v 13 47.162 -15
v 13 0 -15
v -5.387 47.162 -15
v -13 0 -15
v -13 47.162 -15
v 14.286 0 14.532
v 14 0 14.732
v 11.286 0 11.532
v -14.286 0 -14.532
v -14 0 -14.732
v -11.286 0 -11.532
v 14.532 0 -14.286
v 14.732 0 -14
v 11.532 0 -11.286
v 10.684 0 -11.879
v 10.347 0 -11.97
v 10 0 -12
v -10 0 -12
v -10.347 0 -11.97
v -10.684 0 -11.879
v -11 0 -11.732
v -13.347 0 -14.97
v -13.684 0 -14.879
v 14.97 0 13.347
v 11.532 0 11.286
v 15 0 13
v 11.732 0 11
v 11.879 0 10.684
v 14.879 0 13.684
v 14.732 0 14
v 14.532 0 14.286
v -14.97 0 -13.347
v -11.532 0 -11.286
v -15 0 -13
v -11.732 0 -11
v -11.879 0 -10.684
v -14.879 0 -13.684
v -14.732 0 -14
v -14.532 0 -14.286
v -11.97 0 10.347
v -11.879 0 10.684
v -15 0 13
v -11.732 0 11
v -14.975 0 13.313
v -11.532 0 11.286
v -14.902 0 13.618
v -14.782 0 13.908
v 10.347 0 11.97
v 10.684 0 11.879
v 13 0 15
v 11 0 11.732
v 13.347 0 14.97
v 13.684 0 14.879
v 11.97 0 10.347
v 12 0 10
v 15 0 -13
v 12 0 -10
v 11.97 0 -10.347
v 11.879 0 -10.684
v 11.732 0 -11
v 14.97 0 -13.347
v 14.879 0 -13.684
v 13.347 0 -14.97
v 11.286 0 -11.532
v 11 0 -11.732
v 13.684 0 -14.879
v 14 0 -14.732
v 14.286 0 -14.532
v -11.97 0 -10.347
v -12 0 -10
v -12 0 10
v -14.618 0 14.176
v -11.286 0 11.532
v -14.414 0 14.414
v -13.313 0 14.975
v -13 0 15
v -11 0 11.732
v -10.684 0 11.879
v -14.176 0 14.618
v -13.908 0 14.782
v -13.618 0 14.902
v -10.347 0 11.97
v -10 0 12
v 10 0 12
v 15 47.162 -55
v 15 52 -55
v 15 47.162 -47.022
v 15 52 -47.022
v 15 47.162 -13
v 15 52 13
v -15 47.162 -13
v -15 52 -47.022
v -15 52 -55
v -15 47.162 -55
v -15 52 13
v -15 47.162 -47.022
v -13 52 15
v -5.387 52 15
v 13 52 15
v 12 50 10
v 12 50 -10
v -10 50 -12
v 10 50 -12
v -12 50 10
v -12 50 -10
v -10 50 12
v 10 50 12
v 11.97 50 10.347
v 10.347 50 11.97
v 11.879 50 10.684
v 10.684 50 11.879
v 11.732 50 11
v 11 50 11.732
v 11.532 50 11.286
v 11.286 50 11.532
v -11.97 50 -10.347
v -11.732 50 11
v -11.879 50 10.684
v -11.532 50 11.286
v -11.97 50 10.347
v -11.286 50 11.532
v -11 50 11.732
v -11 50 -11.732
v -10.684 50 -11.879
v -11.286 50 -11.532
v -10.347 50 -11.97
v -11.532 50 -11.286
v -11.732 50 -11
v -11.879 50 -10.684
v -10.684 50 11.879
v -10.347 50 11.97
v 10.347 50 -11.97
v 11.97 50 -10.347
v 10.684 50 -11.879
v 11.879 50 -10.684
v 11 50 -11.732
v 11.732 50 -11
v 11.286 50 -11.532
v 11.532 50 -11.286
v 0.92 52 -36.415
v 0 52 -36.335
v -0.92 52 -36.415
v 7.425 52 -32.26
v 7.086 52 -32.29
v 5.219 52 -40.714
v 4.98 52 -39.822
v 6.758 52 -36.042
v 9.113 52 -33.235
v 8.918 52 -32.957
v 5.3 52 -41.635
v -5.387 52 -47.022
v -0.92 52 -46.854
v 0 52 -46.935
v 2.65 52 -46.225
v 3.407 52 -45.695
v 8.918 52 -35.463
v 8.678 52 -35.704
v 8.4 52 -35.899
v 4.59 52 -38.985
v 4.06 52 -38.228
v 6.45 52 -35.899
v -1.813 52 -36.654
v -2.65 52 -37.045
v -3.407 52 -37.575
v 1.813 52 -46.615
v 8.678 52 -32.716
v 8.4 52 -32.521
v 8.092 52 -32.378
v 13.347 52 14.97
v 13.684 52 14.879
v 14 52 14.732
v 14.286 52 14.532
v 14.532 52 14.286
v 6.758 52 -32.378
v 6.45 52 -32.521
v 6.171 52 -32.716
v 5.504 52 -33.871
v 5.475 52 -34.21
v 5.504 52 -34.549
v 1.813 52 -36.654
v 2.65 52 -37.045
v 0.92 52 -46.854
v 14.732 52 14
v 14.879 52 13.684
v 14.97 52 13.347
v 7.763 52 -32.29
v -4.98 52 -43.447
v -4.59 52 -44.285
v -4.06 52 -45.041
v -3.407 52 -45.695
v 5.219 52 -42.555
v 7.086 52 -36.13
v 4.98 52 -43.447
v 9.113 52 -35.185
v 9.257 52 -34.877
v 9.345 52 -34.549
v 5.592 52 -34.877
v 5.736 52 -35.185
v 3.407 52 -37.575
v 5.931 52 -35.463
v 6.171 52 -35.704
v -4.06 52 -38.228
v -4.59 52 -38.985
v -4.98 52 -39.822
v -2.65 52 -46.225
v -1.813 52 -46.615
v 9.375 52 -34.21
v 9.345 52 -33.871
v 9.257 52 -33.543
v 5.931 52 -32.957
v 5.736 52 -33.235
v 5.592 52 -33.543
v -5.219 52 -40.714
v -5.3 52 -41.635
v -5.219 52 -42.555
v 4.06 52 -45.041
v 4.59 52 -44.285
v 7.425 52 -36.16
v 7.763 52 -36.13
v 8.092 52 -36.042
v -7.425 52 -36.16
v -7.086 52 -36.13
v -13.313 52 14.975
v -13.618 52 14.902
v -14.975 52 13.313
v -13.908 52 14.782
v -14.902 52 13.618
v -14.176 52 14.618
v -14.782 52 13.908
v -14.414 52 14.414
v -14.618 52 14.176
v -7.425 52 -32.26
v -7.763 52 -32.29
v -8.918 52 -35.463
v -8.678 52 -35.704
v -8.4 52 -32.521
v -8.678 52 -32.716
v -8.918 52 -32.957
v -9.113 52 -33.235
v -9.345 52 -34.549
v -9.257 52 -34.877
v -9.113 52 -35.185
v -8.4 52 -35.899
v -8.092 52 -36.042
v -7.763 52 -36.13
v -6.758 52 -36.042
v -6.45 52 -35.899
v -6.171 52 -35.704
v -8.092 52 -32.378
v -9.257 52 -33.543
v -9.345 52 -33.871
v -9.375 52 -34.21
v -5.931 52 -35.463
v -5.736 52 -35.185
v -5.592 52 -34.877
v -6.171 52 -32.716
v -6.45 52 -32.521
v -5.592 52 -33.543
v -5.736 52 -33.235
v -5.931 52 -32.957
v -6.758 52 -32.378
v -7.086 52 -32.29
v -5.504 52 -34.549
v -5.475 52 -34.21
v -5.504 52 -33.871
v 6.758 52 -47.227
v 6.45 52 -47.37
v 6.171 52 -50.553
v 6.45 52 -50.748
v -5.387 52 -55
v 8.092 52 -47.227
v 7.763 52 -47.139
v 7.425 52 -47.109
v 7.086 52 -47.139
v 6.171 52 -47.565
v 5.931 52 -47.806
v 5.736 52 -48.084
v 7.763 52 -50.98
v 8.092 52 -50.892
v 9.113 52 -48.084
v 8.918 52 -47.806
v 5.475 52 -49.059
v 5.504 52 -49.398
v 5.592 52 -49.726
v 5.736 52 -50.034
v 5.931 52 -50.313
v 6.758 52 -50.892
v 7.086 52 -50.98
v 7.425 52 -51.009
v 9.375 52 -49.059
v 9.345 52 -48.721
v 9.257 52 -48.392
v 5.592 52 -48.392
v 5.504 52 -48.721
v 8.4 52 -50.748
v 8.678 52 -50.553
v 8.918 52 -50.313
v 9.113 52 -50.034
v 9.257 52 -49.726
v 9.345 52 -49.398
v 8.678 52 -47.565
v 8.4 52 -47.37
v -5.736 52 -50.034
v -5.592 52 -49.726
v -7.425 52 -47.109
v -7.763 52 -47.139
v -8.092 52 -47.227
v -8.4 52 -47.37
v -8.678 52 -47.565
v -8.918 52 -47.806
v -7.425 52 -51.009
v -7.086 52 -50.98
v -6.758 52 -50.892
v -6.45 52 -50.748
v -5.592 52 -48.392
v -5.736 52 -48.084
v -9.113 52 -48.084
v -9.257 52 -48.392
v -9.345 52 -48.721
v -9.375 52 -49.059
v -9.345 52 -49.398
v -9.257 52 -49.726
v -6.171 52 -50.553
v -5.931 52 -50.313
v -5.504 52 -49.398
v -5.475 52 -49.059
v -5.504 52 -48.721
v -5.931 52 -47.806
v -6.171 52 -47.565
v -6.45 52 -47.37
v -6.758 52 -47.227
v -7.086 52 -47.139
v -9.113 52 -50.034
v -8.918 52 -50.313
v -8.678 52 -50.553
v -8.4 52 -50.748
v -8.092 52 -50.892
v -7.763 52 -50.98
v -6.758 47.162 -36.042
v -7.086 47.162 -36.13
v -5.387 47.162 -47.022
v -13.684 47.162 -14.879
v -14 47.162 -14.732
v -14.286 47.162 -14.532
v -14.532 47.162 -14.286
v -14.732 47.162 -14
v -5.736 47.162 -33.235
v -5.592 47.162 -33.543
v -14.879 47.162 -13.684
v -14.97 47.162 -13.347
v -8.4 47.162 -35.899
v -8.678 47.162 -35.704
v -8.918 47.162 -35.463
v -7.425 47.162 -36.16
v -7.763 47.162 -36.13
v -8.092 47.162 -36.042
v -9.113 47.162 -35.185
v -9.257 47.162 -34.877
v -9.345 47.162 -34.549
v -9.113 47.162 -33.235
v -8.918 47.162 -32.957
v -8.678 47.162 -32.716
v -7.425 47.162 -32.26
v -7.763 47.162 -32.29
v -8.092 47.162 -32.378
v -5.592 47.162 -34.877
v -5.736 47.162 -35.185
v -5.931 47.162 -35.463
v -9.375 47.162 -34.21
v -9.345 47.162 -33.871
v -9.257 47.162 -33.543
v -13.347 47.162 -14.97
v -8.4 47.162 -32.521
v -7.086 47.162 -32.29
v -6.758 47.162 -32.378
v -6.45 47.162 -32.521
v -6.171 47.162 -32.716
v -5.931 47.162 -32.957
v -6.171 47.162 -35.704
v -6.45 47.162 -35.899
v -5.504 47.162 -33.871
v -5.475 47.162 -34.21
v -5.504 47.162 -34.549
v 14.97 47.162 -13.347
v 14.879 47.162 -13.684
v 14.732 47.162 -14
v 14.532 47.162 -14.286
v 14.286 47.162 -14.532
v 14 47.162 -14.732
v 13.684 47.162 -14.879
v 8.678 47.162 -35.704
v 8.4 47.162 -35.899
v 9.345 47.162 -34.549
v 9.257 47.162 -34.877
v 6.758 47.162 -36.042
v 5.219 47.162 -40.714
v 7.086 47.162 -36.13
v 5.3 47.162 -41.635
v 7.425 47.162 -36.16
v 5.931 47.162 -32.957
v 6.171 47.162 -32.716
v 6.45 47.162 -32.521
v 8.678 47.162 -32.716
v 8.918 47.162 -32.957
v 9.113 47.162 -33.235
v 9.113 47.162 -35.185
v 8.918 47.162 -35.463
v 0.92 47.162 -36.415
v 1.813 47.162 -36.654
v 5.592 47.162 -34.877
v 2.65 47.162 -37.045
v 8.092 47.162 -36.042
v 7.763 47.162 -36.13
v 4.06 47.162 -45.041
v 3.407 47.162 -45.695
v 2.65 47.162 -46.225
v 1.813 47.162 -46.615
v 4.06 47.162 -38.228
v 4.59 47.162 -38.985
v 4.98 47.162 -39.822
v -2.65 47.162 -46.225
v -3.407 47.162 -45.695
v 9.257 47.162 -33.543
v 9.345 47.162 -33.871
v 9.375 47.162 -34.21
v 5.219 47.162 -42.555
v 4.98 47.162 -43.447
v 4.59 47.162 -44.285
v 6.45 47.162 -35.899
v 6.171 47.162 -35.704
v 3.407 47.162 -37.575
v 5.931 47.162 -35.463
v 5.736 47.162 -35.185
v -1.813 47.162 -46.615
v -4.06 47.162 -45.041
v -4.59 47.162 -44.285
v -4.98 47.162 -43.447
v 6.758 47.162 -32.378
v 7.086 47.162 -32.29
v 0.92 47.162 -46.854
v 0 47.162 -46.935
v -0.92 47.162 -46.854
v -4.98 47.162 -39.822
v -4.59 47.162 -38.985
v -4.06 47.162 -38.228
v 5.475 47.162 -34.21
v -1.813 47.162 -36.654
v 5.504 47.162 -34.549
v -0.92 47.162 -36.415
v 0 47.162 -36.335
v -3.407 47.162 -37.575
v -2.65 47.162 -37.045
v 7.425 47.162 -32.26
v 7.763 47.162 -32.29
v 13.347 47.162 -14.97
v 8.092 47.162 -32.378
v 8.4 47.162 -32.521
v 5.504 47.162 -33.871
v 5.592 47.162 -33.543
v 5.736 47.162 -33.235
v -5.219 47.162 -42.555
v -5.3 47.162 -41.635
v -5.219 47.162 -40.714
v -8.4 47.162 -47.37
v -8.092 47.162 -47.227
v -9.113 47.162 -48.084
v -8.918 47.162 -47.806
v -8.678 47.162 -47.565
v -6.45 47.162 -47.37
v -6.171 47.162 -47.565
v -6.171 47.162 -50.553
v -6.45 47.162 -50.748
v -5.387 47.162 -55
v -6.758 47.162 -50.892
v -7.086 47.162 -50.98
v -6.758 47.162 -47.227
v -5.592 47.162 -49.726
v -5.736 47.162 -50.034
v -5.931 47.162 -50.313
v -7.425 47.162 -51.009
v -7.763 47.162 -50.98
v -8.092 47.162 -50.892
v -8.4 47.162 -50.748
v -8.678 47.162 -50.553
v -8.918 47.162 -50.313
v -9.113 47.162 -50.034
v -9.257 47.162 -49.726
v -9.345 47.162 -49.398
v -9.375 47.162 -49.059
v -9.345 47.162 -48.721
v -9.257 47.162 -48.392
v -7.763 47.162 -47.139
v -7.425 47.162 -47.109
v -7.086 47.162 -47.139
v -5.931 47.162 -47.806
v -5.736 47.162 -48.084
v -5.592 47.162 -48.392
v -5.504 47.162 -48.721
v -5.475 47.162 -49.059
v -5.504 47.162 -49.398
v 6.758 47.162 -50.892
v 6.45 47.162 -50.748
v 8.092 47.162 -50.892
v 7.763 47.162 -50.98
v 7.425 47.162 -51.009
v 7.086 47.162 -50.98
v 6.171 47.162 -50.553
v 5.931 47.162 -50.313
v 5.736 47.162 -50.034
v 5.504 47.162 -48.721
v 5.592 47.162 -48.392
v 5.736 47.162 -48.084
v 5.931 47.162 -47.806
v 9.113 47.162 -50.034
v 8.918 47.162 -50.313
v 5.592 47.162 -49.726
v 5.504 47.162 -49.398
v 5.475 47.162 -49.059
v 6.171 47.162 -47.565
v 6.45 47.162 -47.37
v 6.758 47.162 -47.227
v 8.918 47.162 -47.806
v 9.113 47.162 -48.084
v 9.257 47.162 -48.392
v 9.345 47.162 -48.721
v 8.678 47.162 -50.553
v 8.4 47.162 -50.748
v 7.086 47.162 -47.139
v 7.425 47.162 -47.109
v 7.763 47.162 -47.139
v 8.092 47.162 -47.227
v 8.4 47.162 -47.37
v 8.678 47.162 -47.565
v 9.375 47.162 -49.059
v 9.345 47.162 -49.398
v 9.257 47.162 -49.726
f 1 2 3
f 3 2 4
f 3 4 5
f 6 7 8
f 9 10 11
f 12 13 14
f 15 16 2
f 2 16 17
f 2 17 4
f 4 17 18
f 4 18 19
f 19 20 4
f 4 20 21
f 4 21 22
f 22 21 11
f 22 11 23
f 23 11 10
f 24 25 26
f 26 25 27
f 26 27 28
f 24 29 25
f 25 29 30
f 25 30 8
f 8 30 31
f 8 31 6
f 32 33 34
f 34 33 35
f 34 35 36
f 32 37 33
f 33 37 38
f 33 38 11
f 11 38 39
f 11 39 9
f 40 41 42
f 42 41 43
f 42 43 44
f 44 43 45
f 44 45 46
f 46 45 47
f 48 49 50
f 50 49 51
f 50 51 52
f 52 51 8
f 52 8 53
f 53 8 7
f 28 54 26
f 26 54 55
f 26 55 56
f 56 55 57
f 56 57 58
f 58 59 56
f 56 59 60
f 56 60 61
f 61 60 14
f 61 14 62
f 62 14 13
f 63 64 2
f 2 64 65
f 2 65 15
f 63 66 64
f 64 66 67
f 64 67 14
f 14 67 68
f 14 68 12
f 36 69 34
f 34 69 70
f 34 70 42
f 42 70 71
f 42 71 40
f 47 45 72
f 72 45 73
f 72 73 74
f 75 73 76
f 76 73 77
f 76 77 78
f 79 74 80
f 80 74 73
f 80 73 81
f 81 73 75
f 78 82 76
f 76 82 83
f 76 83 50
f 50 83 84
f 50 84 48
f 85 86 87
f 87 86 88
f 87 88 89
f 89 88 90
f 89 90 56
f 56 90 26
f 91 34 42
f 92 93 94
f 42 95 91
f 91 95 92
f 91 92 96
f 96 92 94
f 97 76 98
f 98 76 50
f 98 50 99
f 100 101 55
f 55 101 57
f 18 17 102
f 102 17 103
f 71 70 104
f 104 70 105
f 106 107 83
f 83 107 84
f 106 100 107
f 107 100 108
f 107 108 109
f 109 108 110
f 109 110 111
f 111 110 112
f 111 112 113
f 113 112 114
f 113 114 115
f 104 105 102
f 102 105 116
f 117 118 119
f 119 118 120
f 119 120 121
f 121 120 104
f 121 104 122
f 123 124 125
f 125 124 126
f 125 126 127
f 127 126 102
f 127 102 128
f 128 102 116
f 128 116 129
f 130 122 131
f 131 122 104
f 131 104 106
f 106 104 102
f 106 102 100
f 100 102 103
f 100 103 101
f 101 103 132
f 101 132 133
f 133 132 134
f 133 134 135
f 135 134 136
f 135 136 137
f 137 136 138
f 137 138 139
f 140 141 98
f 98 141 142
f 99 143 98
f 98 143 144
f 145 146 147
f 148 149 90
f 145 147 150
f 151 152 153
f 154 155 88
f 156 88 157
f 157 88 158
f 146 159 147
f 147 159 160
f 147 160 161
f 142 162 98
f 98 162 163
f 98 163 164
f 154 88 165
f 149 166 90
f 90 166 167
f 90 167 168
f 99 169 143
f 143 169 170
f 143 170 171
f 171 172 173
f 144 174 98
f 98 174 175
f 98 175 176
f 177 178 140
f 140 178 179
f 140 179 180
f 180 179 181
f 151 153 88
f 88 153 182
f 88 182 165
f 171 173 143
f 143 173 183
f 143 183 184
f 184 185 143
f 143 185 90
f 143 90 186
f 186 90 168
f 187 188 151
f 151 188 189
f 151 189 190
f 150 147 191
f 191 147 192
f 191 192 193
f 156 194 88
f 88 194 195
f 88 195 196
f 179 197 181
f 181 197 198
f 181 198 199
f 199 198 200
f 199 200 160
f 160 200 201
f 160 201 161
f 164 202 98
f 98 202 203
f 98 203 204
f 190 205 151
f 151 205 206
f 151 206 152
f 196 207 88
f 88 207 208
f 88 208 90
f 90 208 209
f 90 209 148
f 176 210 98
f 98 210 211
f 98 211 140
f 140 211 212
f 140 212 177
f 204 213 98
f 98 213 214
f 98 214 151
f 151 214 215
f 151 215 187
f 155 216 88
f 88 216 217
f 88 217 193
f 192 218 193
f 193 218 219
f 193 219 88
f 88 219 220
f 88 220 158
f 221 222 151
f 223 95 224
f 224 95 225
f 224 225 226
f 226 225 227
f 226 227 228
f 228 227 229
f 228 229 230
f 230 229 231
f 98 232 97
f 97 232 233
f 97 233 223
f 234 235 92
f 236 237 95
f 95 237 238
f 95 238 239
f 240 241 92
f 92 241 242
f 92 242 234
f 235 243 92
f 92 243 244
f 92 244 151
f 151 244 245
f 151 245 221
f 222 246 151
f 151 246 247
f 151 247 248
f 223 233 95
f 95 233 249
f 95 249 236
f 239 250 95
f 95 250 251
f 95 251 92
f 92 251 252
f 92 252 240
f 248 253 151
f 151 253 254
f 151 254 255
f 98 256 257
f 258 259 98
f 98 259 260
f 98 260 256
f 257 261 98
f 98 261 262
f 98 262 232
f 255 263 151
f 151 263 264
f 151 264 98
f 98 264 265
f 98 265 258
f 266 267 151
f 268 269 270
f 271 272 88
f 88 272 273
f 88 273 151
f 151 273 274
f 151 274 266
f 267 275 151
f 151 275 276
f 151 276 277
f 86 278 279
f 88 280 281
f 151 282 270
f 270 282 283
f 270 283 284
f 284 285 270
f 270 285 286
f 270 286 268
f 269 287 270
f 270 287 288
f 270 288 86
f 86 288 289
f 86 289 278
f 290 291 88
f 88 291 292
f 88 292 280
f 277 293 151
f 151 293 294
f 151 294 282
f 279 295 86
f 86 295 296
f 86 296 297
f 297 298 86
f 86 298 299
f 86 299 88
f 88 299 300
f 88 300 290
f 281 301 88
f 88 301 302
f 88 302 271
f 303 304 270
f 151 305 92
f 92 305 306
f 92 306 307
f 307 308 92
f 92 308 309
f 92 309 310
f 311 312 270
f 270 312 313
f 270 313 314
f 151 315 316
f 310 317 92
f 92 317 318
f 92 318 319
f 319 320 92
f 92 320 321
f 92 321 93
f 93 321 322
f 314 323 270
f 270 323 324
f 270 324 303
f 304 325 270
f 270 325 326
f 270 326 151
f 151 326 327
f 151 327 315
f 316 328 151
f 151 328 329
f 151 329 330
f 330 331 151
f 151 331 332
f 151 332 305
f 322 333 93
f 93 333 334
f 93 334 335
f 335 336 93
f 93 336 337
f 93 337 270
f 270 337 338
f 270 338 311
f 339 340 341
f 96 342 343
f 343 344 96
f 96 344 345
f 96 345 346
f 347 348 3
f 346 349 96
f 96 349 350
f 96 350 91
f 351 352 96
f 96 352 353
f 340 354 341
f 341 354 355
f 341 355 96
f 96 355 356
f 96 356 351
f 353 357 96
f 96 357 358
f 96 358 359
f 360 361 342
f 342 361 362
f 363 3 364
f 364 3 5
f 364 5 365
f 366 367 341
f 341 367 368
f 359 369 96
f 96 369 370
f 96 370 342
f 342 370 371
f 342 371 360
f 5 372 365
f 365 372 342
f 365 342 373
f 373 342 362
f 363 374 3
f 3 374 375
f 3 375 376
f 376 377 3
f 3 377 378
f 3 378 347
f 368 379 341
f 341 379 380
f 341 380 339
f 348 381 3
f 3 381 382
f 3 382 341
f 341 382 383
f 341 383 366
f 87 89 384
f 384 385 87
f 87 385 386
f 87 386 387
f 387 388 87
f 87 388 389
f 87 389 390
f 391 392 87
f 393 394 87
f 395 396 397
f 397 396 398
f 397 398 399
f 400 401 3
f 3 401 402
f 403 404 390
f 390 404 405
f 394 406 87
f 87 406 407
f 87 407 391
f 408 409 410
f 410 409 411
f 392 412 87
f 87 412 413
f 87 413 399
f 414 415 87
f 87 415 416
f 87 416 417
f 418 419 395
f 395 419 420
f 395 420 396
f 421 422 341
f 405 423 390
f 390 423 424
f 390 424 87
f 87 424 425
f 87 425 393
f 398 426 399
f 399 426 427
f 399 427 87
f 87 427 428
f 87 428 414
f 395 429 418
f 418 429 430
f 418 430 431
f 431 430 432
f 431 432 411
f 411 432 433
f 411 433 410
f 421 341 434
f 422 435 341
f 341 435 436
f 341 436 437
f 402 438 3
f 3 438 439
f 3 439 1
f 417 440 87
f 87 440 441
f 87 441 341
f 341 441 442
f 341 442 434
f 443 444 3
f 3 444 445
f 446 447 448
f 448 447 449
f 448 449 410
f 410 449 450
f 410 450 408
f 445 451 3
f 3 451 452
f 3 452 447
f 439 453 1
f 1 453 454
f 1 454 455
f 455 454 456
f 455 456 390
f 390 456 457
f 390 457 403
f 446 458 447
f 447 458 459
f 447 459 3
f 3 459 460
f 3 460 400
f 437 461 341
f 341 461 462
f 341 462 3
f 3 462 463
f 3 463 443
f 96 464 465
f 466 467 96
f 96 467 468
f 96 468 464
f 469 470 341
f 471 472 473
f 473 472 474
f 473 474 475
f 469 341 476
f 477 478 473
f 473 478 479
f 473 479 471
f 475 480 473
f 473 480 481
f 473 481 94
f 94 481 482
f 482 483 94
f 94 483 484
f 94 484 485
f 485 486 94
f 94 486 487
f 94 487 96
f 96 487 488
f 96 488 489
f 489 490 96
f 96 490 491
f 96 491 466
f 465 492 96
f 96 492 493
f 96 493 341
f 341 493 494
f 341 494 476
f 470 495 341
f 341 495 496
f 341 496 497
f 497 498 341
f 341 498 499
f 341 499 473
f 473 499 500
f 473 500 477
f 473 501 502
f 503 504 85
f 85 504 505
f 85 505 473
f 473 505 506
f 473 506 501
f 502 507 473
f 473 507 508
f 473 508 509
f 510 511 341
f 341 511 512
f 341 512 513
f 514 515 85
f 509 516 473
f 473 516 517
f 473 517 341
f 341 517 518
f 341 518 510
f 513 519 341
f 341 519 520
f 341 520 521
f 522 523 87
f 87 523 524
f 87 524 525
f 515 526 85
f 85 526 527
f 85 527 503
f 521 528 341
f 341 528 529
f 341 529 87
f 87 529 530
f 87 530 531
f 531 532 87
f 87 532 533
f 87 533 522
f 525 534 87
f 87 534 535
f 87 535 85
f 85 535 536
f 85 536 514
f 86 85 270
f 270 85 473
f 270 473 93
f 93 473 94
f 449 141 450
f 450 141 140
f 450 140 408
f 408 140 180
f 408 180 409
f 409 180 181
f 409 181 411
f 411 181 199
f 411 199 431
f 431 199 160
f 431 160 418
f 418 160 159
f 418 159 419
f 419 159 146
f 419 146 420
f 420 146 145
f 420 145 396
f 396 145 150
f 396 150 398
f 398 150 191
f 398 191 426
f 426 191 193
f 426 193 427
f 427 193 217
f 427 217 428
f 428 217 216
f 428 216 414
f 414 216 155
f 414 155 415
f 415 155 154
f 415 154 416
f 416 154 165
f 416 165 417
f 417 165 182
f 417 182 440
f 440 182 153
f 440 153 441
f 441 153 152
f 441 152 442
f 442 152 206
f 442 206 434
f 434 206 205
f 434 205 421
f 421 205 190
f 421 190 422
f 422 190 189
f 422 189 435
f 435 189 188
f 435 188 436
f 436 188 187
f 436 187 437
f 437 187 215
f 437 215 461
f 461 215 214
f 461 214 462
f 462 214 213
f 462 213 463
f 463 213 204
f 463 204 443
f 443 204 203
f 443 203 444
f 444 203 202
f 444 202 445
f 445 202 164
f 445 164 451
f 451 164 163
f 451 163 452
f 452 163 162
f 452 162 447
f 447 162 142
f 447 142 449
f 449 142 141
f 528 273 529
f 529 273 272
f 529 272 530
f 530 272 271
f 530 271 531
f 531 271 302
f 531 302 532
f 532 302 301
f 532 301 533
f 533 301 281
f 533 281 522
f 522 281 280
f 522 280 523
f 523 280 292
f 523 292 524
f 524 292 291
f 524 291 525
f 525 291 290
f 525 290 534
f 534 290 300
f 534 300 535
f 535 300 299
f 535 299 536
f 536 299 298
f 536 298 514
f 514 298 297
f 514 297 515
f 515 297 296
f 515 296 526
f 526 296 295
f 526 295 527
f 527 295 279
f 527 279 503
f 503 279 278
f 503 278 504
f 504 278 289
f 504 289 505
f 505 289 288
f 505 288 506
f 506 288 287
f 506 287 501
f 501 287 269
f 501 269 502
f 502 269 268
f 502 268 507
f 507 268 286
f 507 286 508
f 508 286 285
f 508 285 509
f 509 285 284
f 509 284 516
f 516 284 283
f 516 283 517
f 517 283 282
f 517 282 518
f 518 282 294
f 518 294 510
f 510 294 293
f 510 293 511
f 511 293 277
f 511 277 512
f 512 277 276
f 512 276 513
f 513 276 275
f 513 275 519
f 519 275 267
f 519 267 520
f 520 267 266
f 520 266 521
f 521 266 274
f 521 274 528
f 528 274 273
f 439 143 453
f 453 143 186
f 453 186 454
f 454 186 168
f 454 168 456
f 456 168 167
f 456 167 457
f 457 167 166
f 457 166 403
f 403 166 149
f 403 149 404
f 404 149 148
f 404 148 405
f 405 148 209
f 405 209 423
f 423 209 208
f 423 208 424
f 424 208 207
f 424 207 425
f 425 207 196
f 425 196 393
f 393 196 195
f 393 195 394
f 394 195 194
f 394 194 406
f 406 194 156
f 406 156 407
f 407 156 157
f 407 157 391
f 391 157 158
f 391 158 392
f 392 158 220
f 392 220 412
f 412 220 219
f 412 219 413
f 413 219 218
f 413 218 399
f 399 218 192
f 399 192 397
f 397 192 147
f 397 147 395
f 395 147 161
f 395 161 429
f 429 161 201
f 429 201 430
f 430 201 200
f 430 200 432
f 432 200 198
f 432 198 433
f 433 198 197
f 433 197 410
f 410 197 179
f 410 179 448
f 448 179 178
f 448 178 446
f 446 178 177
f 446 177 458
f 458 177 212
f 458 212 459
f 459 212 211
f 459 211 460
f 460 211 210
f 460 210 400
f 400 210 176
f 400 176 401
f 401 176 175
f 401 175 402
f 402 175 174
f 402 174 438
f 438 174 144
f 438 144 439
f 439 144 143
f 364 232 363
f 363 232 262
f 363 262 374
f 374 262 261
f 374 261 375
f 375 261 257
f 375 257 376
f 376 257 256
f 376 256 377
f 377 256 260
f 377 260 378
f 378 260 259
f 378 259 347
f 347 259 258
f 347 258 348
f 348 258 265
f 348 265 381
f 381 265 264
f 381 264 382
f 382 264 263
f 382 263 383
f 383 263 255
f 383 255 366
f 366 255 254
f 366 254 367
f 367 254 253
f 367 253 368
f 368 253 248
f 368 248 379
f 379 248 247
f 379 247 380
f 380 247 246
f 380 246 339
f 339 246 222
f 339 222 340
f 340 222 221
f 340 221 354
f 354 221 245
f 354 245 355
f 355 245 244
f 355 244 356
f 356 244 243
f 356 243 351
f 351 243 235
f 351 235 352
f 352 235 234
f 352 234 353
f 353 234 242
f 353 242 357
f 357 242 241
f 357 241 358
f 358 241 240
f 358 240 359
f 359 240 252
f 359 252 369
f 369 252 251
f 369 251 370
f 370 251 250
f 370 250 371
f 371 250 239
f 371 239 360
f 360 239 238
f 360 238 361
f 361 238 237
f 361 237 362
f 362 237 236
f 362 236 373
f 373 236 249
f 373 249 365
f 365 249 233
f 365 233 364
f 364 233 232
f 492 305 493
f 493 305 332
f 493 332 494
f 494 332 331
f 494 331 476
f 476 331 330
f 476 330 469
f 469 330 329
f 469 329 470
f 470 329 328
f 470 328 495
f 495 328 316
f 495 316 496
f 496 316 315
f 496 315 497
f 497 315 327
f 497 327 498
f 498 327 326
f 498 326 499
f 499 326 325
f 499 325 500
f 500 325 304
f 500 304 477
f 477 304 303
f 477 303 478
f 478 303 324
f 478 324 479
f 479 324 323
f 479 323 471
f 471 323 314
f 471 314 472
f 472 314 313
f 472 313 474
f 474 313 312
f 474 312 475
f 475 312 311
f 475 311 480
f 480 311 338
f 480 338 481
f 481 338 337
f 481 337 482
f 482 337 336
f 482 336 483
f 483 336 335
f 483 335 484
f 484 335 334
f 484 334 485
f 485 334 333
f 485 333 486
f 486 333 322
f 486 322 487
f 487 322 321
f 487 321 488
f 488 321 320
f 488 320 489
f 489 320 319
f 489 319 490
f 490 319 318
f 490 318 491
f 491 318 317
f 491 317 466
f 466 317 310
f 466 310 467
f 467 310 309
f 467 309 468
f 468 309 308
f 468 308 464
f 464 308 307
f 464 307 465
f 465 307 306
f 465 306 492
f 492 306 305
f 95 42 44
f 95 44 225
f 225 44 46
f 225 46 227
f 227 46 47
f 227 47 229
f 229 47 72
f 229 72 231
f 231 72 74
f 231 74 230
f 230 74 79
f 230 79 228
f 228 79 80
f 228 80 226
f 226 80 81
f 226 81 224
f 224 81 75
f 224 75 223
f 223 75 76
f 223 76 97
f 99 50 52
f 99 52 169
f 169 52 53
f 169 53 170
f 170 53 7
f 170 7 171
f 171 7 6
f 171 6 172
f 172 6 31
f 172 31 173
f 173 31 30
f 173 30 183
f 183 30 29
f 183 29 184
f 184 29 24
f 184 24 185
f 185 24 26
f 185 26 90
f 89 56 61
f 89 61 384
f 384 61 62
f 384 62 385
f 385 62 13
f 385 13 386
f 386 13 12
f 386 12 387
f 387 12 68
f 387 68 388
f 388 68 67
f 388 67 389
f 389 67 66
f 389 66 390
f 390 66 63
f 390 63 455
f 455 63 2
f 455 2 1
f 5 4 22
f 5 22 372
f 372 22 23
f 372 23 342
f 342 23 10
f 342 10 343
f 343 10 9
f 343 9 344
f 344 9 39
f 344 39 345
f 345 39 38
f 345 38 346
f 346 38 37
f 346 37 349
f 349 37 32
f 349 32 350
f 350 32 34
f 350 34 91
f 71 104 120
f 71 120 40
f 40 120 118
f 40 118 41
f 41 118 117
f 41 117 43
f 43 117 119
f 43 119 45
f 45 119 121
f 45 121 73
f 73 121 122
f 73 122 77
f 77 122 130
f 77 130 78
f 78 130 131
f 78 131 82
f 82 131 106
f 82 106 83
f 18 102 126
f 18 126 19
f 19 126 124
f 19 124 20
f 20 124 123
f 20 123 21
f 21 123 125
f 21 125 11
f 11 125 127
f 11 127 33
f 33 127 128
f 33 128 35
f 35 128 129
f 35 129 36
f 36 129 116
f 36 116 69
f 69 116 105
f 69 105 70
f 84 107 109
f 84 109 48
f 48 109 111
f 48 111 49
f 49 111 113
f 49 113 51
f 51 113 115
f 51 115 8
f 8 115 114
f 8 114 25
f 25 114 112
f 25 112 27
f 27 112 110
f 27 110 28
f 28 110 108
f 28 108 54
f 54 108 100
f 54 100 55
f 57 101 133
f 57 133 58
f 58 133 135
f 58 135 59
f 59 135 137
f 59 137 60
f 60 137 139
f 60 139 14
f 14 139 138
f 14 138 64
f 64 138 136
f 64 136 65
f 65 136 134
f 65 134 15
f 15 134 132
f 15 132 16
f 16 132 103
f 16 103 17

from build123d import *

# Parameters (mm, degrees)
CROQUIS1_W              = 30
CROQUIS1_H              = 30
CROQUIS1_W_2            = 24
CROQUIS1_H_2            = 24
SALIENTE_EXTRUIR1_DEPTH = 50
CROQUIS2_W              = 30
CROQUIS2_H              = 30
SALIENTE_EXTRUIR2_DEPTH = 2
CROQUIS6_W              = 30
CROQUIS6_H              = 4.83764523
SALIENTE_EXTRUIR4_DEPTH = 40
CROQUIS7_R              = 5.3
CROQUIS7_R_2            = 1.95
CORTAR_EXTRUIR2_DEPTH   = 40
REDONDEO1_R             = 2


with BuildPart() as part:
    # Croquis1 → Saliente-Extruir1 (new body)
    with BuildSketch(Plane(origin=(0, 0, 0), x_dir=(1, 0, 0), z_dir=(0, 1, 0))):
        Rectangle(CROQUIS1_W, CROQUIS1_H)
        Rectangle(CROQUIS1_W_2, CROQUIS1_H_2, mode=Mode.SUBTRACT)
    extrude(amount=SALIENTE_EXTRUIR1_DEPTH)

    # Croquis2 → Saliente-Extruir2 (add)
    with BuildSketch(Plane(origin=(0, 50, 0), x_dir=(1, 0, 0), z_dir=(0, 1, 0))):
        Rectangle(CROQUIS2_W, CROQUIS2_H)
    extrude(amount=SALIENTE_EXTRUIR2_DEPTH)

    # Croquis6 → Saliente-Extruir4 (add)
    with BuildSketch(Plane(origin=(0, 0, -15), x_dir=(-1, 0, 0), z_dir=(0, 0, -1))):
        with Locations((0, 49.581177385)):
            Rectangle(CROQUIS6_W, CROQUIS6_H)
    extrude(amount=SALIENTE_EXTRUIR4_DEPTH)

    # Croquis7 → Cortar-Extruir2 (cut)
    with BuildSketch(Plane(origin=(0, 52, 0), x_dir=(1, 0, 0), z_dir=(0, 1, 0))):
        with Locations((0, 41.634609849)):
            Circle(CROQUIS7_R)
        with Locations((7.424621202, 49.059231051)):
            Circle(CROQUIS7_R_2)
        with Locations((7.424621202, 34.209988647)):
            Circle(CROQUIS7_R_2)
        with Locations((-7.424621202, 34.209988647)):
            Circle(CROQUIS7_R_2)
        with Locations((-7.424621202, 49.059231051)):
            Circle(CROQUIS7_R_2)
    extrude(amount=-CORTAR_EXTRUIR2_DEPTH, mode=Mode.SUBTRACT)

    # Redondeo1
    redondeo1_edges = [part.edges().sort_by_distance(p)[0] for p in [
        (-15, 26, 15),
        (15, 26, 15),
        (15, 23.581177385, -15),
        (-15, 23.581177385, -15),
        (-12, 25, 12),
        (-12, 25, -12),
        (12, 25, 12),
        (12, 25, -12),
    ]]
    fillet(redondeo1_edges, radius=REDONDEO1_R)


solid = part.part
